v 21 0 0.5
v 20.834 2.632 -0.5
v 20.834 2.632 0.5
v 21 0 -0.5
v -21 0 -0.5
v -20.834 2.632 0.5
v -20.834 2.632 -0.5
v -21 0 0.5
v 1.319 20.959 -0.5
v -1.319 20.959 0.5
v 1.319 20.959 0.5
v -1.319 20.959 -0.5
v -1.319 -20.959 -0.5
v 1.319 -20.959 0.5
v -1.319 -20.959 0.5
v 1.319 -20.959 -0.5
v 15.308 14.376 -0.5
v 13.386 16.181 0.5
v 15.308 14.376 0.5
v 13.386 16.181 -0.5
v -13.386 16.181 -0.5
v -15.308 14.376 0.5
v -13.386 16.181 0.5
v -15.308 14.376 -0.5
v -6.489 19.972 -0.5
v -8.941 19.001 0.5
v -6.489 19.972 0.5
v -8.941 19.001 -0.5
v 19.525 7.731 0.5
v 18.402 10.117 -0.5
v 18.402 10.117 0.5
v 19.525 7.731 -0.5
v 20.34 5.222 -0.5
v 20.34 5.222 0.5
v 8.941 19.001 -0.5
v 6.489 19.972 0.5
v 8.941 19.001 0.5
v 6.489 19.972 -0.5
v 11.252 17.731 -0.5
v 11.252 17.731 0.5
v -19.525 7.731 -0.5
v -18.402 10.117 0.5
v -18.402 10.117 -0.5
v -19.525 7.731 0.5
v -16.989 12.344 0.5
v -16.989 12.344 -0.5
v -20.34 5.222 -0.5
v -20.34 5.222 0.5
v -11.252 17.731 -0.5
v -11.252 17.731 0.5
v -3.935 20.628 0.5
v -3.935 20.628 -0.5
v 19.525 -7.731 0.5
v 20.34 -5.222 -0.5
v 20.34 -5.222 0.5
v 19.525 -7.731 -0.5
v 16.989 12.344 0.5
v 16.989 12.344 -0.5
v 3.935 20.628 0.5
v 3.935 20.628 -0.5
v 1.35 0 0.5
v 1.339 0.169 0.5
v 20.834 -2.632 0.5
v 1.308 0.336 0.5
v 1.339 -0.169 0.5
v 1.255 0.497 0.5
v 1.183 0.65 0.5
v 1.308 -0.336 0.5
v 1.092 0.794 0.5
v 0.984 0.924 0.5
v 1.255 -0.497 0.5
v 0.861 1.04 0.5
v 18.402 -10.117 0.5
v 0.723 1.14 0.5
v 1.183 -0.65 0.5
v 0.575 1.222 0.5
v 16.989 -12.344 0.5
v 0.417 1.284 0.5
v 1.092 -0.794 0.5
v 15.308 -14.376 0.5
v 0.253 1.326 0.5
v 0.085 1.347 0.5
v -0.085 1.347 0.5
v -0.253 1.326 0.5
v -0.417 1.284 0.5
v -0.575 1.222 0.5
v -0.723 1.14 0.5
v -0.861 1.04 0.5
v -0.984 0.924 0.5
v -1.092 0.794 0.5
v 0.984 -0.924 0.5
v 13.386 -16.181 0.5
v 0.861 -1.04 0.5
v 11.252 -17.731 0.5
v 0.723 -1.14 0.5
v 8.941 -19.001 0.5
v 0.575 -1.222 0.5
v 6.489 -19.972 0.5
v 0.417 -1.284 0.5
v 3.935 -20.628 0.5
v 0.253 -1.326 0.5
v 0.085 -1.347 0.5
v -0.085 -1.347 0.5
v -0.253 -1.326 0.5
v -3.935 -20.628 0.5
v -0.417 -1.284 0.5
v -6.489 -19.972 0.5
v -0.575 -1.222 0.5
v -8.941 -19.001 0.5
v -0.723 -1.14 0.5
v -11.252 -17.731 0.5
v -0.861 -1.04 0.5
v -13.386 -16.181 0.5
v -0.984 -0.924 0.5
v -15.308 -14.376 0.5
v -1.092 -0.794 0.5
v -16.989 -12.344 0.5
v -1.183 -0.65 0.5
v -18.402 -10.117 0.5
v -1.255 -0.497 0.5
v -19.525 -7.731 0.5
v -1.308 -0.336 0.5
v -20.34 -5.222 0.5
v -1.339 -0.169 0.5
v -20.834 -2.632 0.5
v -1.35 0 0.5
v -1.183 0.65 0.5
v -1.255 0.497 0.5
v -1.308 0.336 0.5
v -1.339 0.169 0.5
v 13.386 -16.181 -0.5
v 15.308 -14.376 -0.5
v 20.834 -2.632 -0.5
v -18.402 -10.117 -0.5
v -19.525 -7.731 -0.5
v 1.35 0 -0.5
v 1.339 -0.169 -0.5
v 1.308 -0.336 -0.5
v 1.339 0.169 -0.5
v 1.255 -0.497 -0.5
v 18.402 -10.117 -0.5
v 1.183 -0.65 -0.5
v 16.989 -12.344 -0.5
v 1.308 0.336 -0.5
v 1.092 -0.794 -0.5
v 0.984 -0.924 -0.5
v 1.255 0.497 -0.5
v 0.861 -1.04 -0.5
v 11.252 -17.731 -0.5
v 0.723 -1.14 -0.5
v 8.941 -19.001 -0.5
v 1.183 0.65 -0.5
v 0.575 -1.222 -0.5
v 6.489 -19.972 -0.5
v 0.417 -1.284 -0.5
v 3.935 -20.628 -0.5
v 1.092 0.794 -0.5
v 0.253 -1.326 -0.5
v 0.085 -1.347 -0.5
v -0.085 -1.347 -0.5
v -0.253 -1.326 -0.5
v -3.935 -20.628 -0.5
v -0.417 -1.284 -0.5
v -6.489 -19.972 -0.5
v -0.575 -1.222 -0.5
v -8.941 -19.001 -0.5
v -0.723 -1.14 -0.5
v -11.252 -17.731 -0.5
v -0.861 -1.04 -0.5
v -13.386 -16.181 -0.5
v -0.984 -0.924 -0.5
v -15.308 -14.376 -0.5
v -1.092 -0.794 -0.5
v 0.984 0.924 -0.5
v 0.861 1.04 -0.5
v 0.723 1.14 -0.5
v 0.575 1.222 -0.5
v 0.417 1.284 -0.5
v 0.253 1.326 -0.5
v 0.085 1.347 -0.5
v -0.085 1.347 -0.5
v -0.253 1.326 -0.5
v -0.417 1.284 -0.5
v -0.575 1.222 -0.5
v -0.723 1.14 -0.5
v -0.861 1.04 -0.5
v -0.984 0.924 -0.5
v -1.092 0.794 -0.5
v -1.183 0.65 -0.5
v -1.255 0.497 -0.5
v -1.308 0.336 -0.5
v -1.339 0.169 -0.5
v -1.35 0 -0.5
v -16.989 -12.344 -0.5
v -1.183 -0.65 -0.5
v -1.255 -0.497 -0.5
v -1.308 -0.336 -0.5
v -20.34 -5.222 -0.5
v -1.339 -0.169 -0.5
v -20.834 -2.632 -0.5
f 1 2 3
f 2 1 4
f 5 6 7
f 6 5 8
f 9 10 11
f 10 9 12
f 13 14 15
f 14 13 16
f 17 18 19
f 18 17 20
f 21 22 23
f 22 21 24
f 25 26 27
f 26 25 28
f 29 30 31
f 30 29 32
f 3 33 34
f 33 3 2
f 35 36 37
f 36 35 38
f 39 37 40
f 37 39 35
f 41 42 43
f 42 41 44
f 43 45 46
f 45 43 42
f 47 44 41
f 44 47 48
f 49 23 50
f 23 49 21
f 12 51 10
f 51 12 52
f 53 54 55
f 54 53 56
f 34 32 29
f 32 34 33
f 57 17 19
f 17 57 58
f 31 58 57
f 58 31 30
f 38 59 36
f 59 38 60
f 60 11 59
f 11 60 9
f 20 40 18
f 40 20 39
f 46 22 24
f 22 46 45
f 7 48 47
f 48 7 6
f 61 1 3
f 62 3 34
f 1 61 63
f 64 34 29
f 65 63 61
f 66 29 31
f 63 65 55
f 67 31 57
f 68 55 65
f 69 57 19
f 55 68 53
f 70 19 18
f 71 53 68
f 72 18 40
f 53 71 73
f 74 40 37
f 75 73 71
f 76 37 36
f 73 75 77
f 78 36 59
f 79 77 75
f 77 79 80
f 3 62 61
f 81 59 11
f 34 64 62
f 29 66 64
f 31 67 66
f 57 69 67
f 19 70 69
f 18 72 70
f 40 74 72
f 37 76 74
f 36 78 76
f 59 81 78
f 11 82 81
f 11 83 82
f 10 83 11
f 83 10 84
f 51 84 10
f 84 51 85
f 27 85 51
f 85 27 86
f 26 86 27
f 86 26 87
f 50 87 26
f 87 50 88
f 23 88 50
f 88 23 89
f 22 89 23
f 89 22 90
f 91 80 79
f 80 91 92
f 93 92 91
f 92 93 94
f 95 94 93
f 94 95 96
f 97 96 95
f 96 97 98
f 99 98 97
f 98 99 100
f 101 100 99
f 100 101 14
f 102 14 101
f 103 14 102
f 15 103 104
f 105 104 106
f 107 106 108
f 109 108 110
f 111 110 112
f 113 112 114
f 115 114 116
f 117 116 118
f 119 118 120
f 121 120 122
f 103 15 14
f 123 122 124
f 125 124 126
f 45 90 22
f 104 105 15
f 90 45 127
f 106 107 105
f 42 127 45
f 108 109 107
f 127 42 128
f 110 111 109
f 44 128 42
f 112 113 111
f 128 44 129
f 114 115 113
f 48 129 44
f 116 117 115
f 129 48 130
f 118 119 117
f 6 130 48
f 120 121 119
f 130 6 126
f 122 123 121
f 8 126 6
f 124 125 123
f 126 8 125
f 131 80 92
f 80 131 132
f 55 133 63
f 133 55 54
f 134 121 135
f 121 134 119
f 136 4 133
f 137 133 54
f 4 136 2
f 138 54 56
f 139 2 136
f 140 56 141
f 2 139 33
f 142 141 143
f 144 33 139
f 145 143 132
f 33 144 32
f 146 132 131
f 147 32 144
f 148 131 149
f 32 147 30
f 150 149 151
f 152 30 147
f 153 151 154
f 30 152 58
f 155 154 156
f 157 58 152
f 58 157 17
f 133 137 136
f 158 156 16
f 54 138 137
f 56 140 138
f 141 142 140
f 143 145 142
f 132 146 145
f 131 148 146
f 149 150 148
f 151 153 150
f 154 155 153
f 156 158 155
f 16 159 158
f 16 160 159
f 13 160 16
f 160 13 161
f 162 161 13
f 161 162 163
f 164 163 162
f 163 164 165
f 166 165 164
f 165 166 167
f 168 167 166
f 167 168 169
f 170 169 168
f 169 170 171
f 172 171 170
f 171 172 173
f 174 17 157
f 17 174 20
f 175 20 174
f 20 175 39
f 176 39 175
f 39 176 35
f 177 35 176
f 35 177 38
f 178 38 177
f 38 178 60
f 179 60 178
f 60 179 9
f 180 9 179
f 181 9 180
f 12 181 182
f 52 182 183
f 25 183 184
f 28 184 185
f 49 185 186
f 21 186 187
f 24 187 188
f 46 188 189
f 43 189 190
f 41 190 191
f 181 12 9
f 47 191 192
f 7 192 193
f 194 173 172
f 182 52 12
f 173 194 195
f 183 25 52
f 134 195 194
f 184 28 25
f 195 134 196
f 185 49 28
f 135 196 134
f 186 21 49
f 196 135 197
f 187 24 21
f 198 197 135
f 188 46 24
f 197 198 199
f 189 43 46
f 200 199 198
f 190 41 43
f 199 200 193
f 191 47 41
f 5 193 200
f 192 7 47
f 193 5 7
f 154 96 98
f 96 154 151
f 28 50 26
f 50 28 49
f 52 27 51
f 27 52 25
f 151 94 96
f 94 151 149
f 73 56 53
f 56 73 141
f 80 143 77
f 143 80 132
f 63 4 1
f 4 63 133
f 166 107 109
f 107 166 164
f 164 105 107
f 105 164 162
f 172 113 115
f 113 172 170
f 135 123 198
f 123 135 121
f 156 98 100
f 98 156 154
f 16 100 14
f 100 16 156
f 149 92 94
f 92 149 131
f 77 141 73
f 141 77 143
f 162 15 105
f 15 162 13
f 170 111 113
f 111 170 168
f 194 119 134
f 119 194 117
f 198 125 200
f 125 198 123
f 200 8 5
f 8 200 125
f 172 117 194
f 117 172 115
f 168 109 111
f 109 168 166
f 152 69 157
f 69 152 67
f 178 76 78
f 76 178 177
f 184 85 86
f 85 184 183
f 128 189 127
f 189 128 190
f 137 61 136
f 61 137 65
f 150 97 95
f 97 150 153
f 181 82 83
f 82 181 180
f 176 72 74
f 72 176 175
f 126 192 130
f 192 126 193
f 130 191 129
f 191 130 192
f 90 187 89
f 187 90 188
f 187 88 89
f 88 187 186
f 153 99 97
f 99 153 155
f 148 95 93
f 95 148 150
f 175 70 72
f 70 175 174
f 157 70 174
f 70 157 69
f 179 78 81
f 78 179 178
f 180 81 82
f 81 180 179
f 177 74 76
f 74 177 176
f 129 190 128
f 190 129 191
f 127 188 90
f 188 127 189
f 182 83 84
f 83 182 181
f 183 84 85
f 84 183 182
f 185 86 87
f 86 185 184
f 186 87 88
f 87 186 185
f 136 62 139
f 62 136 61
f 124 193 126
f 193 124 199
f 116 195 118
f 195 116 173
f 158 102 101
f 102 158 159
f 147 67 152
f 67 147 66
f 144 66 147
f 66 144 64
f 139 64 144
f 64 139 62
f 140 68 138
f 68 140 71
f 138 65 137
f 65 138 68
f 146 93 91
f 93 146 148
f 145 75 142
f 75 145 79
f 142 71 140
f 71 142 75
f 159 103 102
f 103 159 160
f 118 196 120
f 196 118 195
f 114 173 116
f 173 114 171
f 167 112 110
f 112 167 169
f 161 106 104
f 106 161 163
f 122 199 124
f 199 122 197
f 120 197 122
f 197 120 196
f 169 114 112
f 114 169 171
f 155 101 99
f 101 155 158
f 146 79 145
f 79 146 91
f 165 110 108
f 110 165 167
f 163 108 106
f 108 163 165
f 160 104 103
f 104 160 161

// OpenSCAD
$fn = 50;


difference() {
	union() {
		translate(v = [0, 0, -0.5000000000]) {
			cylinder(h = 1, r = 21.0000000000);
		}
	}
	union() {
		translate(v = [0, 0, -100.0000000000]) {
			cylinder(h = 200, r = 1.3500000000);
		}
	}
}
